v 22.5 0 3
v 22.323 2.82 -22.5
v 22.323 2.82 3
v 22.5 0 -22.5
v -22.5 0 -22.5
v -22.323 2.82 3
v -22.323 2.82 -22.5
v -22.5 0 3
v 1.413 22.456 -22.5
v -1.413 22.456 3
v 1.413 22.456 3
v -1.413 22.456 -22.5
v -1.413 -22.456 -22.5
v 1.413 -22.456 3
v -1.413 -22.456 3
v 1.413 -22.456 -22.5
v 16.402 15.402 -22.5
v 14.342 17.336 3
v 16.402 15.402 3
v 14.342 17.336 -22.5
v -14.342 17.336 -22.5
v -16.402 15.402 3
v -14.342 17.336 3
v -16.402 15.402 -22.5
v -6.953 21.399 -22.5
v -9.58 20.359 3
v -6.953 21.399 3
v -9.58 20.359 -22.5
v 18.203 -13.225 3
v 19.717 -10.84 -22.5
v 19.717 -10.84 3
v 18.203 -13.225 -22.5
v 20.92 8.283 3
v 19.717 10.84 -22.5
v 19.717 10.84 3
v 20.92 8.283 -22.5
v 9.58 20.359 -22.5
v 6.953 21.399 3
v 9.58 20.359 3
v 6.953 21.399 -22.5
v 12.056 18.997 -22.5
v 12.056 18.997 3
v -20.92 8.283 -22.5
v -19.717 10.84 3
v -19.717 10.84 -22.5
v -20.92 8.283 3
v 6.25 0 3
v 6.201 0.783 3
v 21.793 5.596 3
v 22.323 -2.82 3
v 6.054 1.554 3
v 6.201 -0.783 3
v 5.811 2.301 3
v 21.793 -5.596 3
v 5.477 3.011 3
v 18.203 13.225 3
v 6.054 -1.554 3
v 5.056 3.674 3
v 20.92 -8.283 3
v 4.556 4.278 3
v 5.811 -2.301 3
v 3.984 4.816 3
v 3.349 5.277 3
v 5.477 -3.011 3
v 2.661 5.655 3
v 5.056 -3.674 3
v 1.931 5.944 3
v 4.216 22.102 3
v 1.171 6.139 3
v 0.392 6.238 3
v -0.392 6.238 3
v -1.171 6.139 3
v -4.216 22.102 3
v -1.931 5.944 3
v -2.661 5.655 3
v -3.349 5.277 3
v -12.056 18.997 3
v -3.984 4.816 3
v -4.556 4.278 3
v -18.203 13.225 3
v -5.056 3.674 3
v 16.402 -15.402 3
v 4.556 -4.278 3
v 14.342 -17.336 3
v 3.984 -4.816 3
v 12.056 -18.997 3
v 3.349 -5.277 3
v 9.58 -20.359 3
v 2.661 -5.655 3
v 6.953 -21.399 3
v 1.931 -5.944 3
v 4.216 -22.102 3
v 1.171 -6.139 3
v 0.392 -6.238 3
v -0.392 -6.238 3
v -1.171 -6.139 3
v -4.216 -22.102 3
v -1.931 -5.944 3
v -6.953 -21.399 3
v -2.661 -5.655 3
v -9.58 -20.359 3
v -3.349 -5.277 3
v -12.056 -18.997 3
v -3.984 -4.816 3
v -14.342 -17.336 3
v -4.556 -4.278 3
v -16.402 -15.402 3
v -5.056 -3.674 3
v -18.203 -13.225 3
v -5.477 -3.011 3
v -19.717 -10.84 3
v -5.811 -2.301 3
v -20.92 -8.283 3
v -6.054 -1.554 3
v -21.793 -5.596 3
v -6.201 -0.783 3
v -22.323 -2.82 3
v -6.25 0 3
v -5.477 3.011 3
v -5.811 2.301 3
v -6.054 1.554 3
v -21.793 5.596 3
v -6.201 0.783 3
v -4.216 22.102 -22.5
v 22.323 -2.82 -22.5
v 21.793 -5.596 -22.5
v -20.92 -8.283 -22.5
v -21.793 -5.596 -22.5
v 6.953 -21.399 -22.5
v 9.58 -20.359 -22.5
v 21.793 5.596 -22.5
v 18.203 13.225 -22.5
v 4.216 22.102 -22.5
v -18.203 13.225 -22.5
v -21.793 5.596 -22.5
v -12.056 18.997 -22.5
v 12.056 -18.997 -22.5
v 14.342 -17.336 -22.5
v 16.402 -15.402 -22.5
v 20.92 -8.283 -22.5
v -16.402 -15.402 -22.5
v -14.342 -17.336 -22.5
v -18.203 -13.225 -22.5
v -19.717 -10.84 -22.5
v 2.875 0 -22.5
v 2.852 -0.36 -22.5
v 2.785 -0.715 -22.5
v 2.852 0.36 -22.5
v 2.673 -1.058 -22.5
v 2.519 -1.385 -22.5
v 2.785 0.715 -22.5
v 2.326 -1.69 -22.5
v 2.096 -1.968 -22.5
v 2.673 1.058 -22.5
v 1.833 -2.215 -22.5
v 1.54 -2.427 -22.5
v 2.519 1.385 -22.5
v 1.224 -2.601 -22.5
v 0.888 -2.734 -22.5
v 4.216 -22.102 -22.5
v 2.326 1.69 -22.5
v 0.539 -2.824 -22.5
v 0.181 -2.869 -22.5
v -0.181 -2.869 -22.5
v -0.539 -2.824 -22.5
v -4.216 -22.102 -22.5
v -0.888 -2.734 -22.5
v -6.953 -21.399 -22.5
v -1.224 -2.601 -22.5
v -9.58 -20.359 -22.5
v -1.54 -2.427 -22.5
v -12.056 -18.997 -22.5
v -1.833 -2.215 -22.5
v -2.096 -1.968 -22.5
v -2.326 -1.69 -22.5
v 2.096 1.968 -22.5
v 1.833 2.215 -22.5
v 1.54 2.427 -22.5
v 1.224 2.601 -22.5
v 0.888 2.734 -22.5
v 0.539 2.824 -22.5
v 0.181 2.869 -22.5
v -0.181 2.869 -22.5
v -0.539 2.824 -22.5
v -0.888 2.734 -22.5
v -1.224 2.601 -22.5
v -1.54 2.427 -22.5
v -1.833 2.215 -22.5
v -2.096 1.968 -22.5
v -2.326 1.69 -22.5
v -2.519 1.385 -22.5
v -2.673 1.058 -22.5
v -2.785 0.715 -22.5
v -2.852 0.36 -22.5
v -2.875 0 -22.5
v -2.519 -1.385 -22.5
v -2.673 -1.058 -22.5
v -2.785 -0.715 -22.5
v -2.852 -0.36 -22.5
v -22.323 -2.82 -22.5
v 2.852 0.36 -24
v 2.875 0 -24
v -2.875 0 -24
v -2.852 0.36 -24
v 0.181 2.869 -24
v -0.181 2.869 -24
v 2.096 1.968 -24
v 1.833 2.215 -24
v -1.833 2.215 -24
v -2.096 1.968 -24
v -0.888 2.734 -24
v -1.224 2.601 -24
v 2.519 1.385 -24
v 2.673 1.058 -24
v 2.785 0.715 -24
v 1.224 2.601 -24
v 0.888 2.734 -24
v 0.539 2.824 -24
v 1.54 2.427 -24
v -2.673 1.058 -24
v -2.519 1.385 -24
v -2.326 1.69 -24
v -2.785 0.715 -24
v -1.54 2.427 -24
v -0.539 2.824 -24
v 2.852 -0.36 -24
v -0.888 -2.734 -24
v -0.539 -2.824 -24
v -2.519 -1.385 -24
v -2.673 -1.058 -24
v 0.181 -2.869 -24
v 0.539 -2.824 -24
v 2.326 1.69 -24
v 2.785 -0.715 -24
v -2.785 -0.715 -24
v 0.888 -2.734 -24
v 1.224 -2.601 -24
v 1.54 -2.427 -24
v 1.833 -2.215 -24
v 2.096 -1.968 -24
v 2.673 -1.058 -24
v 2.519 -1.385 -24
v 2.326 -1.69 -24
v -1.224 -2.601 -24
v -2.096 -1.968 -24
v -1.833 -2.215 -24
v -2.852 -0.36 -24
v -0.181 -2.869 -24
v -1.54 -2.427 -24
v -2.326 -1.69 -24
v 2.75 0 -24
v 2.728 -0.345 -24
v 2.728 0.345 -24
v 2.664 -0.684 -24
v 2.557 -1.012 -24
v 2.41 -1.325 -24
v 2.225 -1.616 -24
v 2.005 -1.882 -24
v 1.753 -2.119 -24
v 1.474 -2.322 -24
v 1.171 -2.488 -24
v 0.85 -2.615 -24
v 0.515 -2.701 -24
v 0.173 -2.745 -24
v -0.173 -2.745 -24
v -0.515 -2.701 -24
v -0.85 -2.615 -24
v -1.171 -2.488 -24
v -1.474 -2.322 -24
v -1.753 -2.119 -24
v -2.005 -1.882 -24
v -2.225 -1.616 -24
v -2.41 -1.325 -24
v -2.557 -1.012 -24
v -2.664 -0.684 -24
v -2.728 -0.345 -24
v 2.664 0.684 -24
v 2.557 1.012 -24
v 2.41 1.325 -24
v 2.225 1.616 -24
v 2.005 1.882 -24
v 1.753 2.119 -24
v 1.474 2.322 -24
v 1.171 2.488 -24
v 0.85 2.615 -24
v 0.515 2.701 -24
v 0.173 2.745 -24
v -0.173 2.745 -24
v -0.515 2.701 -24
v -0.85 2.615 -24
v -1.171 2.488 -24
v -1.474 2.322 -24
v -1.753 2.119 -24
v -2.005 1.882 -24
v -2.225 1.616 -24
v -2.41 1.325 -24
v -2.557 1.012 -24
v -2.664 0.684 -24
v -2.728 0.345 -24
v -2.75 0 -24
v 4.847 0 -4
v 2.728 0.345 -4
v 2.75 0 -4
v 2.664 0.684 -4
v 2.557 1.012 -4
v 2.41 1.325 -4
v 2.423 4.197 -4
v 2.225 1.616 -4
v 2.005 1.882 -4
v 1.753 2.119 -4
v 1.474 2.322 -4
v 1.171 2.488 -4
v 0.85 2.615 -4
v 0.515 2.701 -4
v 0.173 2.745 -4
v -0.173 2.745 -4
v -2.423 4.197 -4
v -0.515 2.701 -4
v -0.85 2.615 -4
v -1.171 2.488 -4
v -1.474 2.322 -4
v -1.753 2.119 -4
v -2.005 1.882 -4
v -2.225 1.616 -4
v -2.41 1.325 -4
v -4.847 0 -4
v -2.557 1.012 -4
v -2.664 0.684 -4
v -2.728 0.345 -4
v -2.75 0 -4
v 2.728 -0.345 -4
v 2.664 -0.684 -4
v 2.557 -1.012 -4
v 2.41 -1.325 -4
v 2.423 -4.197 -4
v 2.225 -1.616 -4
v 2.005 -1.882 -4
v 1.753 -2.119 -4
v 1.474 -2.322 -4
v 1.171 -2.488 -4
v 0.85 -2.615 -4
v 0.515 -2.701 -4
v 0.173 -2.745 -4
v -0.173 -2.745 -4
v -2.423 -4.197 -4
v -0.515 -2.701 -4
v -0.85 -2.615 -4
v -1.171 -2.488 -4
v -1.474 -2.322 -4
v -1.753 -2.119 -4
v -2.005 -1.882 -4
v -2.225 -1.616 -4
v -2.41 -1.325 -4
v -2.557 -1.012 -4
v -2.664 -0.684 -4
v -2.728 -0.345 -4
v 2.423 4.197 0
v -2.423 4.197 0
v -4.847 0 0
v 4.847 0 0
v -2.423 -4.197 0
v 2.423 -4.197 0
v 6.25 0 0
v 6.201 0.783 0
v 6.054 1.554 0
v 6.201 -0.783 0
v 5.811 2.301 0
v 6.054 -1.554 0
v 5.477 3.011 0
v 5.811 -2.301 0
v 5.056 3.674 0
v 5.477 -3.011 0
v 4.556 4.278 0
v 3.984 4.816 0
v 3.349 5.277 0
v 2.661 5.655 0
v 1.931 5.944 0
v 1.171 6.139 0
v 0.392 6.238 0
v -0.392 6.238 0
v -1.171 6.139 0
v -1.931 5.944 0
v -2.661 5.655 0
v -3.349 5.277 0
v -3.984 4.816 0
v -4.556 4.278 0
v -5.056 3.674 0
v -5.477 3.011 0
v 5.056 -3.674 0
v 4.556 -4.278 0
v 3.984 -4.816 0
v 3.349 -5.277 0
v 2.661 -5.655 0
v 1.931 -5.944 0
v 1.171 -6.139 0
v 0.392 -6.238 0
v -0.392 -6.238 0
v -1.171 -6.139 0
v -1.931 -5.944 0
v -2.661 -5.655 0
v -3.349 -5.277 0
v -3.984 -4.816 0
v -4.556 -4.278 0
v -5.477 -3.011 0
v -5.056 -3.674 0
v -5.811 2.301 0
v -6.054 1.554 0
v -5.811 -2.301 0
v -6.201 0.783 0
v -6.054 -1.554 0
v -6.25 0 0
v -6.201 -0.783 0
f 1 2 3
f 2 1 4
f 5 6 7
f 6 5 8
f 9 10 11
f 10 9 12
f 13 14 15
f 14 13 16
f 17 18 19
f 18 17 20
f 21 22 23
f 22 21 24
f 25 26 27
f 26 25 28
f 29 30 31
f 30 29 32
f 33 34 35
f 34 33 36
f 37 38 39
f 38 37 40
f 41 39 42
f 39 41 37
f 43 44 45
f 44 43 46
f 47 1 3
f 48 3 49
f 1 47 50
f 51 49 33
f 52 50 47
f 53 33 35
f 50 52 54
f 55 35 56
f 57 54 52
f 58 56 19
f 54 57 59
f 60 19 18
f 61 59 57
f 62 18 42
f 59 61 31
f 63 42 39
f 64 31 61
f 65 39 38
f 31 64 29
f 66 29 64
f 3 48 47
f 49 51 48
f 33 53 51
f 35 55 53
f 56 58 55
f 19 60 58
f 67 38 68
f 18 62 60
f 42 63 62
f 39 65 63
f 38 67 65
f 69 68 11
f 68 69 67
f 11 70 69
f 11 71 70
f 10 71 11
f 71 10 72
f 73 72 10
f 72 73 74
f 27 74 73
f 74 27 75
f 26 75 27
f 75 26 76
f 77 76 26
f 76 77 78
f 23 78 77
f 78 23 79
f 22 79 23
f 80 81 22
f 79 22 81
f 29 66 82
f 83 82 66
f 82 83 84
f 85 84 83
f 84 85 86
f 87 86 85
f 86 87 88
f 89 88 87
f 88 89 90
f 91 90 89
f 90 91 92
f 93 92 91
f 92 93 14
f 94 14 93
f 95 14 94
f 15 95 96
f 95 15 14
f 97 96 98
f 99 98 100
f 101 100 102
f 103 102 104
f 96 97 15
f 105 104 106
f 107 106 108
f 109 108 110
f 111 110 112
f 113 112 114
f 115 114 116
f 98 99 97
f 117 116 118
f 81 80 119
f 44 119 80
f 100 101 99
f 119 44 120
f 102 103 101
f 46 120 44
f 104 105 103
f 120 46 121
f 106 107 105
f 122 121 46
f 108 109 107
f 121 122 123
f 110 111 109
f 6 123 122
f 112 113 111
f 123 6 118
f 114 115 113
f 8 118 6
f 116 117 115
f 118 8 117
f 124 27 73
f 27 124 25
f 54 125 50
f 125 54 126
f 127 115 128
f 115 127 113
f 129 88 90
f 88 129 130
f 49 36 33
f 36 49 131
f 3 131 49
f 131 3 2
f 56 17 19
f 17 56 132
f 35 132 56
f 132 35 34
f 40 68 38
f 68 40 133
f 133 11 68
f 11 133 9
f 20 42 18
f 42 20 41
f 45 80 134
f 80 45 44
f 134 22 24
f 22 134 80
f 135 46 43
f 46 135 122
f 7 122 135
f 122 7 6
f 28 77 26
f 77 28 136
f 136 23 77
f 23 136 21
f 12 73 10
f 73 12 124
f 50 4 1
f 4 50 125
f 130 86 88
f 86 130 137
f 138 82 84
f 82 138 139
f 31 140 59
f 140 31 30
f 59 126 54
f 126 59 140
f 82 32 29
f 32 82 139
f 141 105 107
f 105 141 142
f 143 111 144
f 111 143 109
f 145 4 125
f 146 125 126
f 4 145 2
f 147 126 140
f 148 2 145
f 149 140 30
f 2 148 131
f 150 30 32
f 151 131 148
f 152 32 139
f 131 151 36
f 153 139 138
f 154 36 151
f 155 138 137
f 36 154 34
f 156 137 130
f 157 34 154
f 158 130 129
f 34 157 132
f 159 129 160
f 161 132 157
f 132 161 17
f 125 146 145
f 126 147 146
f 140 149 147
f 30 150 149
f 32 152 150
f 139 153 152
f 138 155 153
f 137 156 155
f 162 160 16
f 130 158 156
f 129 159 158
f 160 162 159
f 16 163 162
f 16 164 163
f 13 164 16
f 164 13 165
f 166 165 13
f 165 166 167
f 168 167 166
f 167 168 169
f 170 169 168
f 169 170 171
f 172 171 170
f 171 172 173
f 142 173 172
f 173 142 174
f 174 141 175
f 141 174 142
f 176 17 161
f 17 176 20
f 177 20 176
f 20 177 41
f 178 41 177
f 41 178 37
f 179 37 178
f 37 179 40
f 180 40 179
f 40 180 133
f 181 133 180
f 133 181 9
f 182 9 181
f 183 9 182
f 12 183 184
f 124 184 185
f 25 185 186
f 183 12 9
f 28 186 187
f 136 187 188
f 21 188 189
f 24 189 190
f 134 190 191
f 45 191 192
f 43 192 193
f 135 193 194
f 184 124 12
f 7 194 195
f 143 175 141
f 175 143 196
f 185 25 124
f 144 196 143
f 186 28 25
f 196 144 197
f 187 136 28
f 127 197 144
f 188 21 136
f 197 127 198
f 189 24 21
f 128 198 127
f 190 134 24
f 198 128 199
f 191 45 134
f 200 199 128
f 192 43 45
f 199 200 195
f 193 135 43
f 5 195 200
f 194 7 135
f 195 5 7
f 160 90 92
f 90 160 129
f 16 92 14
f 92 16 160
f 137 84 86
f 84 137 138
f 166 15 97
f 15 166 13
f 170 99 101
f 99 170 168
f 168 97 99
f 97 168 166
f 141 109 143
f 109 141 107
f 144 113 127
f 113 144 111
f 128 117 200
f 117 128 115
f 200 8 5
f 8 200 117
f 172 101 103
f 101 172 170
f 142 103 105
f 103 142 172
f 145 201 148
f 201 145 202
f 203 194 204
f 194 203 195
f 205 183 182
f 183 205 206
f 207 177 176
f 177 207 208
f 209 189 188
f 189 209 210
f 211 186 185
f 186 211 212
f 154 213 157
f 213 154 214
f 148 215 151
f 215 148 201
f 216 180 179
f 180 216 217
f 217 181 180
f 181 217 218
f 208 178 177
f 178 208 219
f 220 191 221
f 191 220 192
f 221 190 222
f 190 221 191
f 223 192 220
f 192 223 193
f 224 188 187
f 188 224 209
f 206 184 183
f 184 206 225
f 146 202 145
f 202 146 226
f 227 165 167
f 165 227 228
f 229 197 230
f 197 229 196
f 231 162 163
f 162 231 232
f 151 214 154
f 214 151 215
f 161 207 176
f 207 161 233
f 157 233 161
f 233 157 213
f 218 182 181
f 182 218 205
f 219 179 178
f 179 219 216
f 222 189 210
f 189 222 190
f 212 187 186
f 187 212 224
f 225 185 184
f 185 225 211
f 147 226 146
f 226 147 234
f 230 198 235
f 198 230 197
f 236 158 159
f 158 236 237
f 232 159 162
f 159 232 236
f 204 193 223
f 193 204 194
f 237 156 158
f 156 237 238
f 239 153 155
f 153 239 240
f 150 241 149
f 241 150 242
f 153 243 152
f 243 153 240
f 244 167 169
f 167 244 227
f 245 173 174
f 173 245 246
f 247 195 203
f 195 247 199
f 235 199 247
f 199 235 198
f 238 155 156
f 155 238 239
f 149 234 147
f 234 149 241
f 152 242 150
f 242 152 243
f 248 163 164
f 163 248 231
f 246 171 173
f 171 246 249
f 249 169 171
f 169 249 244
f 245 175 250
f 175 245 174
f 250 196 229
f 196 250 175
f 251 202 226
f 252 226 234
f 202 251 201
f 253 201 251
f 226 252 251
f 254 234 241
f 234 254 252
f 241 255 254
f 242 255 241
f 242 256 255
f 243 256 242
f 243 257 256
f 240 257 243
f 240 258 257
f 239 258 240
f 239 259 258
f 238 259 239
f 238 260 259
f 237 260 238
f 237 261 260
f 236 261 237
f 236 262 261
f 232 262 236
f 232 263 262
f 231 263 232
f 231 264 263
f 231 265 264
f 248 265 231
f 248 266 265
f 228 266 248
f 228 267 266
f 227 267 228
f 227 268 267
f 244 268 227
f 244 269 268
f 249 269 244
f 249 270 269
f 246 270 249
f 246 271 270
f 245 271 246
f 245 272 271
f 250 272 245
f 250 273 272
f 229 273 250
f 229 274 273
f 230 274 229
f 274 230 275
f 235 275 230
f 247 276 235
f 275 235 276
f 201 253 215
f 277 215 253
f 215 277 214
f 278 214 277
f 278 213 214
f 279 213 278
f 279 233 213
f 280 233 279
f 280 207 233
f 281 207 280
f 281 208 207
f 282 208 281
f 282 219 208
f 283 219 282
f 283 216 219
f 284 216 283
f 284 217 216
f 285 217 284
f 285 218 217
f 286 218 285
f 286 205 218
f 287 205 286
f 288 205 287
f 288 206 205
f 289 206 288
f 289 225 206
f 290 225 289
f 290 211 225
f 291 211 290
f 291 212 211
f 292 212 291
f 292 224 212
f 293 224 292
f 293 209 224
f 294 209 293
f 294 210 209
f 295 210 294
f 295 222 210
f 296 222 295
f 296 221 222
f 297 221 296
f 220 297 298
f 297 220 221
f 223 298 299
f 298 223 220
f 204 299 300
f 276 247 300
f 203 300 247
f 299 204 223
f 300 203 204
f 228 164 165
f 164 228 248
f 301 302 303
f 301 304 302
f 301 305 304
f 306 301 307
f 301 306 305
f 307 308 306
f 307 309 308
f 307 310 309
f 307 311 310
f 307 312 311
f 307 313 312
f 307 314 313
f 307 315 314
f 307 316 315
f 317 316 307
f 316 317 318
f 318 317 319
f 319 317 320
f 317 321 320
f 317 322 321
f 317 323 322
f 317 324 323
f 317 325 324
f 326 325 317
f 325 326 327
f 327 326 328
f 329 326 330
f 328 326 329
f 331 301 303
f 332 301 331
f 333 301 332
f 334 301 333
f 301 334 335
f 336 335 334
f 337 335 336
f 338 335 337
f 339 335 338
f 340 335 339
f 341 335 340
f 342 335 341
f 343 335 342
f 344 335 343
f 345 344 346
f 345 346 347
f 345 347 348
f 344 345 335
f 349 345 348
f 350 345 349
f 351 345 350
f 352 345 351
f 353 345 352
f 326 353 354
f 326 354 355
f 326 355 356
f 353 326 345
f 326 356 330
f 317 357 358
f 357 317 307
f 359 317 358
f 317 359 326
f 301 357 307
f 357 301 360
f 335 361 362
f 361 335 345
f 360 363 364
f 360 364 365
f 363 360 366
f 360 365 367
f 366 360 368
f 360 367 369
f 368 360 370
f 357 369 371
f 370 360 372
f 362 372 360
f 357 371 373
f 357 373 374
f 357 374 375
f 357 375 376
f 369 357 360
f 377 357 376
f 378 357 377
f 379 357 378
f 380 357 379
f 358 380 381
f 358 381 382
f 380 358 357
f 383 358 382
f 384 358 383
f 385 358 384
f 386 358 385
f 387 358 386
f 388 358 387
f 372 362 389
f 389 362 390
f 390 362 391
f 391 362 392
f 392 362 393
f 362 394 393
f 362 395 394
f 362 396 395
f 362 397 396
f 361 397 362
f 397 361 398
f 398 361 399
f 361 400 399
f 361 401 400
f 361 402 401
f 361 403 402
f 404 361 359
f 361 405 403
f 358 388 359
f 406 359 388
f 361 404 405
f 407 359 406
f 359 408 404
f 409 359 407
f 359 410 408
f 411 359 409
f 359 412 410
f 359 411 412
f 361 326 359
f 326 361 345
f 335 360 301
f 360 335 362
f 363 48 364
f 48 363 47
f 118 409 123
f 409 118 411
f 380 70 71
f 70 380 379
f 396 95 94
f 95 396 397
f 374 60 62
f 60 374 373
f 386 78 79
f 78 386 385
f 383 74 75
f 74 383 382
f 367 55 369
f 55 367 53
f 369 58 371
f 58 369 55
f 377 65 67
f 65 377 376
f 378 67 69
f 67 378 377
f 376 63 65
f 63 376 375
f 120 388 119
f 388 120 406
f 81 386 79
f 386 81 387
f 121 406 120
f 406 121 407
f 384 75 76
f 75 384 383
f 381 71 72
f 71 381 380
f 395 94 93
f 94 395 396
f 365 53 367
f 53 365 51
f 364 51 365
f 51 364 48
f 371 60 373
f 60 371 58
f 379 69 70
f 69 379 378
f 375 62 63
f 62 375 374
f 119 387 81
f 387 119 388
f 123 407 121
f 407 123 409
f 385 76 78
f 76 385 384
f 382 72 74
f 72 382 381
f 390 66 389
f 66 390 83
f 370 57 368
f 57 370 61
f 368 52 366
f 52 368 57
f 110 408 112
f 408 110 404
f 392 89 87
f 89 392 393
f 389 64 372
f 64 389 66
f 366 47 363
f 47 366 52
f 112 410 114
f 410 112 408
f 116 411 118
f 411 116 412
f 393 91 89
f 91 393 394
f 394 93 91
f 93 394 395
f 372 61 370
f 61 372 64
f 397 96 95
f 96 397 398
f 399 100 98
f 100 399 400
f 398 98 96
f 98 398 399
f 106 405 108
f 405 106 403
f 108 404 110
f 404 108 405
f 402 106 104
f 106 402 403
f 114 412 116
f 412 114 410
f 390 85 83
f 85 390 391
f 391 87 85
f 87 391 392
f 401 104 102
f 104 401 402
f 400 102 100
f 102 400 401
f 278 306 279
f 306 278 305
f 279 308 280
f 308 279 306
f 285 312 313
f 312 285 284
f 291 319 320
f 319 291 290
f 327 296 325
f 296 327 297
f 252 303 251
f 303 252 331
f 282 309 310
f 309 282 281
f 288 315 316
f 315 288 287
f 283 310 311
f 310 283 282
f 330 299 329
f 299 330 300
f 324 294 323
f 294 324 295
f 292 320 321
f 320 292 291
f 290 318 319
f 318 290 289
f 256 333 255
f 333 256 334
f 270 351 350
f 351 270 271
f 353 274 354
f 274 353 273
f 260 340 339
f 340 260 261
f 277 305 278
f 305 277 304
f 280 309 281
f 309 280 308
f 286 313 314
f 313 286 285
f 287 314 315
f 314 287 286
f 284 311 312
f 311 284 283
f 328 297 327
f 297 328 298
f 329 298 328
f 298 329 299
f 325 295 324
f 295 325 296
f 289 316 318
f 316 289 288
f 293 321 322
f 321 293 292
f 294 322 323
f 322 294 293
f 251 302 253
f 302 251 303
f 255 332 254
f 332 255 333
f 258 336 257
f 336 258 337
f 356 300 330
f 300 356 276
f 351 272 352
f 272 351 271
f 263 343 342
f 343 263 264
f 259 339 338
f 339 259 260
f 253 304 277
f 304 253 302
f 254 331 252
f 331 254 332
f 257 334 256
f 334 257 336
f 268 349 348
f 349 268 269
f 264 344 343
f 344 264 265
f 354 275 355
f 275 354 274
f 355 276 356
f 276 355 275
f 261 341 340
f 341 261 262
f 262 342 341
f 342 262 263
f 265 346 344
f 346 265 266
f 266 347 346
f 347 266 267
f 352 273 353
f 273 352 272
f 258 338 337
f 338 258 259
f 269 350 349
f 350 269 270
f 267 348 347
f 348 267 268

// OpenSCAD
$fn = 50;

difference() {
	union() {
		translate(v = [0, 0, -22.5]) {
			cylinder(h = 25.5, r = 22.5);
		}
		#translate(v = [0, 0, -24.0]) {
			cylinder(h = 24, r = 2.875);
		}
	}
	union() {
		translate(v = [0, 0, 0]) {
			rotate(a = [0, 0, 0]) {
				difference() {
					union() {
						translate(v = [0, 0, -4]) {
							linear_extrude(height = 4) {
								polygon(points = [[4.8468, 0.0], [2.4234000000000004, 4.197451927062417], [-2.423399999999999, 4.197451927062417], [-4.8468, 5.935618106107392e-16], [-2.423400000000002, -4.197451927062416], [2.423399999999997, -4.197451927062419]]);
							}
						}
					}
					union();
				}
			}
		}
		#cylinder(h = 3, r = 6.25);
		#translate(v = [0, 0, -100.0]) {
			cylinder(h = 200, r = 2.75);
		}
	}
}
